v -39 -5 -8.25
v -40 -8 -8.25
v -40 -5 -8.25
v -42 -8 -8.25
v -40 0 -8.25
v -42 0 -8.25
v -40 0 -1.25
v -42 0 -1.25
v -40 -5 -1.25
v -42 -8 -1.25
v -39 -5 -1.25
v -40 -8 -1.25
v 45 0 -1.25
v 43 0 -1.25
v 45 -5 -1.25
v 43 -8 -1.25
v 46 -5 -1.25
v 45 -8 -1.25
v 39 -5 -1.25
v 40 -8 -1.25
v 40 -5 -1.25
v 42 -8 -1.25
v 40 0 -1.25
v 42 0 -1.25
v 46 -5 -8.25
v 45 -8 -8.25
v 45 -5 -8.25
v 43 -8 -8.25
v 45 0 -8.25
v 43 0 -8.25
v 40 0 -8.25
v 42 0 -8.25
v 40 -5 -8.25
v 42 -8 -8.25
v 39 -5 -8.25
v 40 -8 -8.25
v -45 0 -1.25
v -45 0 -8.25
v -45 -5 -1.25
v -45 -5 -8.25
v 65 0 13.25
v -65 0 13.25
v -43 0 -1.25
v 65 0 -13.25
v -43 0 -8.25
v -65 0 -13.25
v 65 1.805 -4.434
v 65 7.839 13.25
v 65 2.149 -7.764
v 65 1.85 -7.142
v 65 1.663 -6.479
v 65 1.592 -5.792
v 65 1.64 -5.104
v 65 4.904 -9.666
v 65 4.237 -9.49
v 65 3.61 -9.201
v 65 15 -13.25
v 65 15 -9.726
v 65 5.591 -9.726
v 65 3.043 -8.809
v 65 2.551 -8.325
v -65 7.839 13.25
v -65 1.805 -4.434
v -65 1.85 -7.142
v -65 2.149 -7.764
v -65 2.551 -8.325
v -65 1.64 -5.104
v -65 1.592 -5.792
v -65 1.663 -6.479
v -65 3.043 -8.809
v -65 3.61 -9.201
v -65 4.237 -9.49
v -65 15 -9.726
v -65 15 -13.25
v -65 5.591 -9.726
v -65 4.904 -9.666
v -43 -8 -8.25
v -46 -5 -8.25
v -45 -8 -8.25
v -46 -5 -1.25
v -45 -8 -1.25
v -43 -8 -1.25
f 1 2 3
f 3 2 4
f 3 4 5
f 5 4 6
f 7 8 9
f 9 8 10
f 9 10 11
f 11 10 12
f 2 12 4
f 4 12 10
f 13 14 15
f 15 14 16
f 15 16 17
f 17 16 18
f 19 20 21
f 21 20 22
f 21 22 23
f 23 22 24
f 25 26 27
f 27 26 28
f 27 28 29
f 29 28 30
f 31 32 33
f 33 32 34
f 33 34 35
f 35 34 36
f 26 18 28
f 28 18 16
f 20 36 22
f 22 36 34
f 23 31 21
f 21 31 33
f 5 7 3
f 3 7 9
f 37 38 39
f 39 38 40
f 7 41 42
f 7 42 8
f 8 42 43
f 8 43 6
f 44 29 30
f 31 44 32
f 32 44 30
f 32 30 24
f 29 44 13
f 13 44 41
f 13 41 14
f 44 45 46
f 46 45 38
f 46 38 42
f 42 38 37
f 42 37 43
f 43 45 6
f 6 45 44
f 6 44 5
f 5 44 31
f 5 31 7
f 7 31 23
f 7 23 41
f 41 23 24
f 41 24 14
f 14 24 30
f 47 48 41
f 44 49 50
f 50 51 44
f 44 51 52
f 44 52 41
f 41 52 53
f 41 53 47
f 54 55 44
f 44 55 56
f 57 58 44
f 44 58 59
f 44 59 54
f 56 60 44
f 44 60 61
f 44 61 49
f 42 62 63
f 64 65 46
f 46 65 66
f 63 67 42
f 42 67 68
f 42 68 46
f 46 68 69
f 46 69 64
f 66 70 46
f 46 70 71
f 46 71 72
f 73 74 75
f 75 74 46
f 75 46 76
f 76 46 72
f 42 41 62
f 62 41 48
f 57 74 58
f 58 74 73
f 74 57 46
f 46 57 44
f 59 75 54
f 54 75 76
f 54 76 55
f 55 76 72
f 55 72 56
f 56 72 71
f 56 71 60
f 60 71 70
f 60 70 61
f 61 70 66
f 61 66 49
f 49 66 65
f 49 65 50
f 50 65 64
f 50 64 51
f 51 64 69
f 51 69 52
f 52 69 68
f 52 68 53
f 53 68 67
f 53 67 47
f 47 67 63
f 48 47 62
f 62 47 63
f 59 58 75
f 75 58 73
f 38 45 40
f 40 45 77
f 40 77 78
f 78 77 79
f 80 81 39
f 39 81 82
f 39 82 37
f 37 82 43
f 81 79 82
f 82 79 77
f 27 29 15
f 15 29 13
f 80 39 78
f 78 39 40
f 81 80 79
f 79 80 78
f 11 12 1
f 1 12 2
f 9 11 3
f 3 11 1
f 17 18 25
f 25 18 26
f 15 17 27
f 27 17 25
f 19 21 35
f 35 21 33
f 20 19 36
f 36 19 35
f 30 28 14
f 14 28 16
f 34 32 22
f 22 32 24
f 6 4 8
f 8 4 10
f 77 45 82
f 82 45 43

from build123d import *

# Parameters (mm, degrees)
SKETCH1_W               = 130
SKETCH1_H               = 26.5
BOSS_EXTRUDE2_DEPTH     = 15
CUT_EXTRUDE1_DEPTH      = 132.531602666
CUT_EXTRUDE1_DEPTH_BACK = 132.531602666
SKETCH4_W               = 5
SKETCH4_H               = 7
BOSS_EXTRUDE3_DEPTH     = 8
BOSS_EXTRUDE4_DEPTH     = 3.5
SKETCH5_3_W             = 1
SKETCH5_3_H             = 8
CUT_EXTRUDE2_DEPTH      = 3.5


with BuildPart() as part:
    # Sketch1 → Boss-Extrude2 (new body)
    with BuildSketch(Plane(origin=(0, 0, 0), x_dir=(1, 0, 0), z_dir=(0, 1, 0))):
        Rectangle(SKETCH1_W, SKETCH1_H)
    extrude(amount=BOSS_EXTRUDE2_DEPTH)

    # Sketch2 → Cut-Extrude1 (cut, two sides: drawn at the far end of the back side and taken through both)
    with BuildSketch(Plane.ZY.offset(65).offset(-CUT_EXTRUDE1_DEPTH_BACK)):
        with BuildLine():
            Line((-4.434381462, 1.80539147), (13.25, 7.838944467))
            Line((13.25, 7.838944467), (13.25, 15))
            Line((13.25, 15), (-9.725995121, 15))
            Line((-9.725995121, 15), (-9.725995121, 5.591119162))
            ThreePointArc((-9.725995121, 5.591119162), (-8.053391237, 2.337931907), (-4.434381462, 1.80539147))
        make_face()
    extrude(amount=CUT_EXTRUDE1_DEPTH + CUT_EXTRUDE1_DEPTH_BACK, mode=Mode.SUBTRACT)

    # Sketch4 → Boss-Extrude3 (add)
    with BuildSketch(Plane.XZ):
        with Locations((-42.5, -4.75)):
            Rectangle(SKETCH4_W, SKETCH4_H)
        with Locations((42.5, -4.75)):
            Rectangle(SKETCH4_W, SKETCH4_H)
    extrude(amount=BOSS_EXTRUDE3_DEPTH)

    # Sketch5 → Boss-Extrude4 (add, symmetric)
    with BuildSketch(Plane.XY.offset(-4.75)):
        Polygon((-45, -8), (-45, -5), (-46, -5), align=None)
        Polygon((-40, -5), (-40, -8), (-39, -5), align=None)
        Polygon((46, -5), (45, -5), (45, -8), align=None)
        Polygon((40, -8), (40, -5), (39, -5), align=None)
    extrude(amount=BOSS_EXTRUDE4_DEPTH, both=True)

    # Sketch5<3> → Cut-Extrude2 (cut, symmetric)
    with BuildSketch(Plane.XY.offset(-4.75)):
        with Locations((-42.5, -4)):
            Rectangle(SKETCH5_3_W, SKETCH5_3_H)
        with Locations((42.5, -4)):
            Rectangle(SKETCH5_3_W, SKETCH5_3_H)
    extrude(amount=CUT_EXTRUDE2_DEPTH, both=True, mode=Mode.SUBTRACT)


solid = part.part
